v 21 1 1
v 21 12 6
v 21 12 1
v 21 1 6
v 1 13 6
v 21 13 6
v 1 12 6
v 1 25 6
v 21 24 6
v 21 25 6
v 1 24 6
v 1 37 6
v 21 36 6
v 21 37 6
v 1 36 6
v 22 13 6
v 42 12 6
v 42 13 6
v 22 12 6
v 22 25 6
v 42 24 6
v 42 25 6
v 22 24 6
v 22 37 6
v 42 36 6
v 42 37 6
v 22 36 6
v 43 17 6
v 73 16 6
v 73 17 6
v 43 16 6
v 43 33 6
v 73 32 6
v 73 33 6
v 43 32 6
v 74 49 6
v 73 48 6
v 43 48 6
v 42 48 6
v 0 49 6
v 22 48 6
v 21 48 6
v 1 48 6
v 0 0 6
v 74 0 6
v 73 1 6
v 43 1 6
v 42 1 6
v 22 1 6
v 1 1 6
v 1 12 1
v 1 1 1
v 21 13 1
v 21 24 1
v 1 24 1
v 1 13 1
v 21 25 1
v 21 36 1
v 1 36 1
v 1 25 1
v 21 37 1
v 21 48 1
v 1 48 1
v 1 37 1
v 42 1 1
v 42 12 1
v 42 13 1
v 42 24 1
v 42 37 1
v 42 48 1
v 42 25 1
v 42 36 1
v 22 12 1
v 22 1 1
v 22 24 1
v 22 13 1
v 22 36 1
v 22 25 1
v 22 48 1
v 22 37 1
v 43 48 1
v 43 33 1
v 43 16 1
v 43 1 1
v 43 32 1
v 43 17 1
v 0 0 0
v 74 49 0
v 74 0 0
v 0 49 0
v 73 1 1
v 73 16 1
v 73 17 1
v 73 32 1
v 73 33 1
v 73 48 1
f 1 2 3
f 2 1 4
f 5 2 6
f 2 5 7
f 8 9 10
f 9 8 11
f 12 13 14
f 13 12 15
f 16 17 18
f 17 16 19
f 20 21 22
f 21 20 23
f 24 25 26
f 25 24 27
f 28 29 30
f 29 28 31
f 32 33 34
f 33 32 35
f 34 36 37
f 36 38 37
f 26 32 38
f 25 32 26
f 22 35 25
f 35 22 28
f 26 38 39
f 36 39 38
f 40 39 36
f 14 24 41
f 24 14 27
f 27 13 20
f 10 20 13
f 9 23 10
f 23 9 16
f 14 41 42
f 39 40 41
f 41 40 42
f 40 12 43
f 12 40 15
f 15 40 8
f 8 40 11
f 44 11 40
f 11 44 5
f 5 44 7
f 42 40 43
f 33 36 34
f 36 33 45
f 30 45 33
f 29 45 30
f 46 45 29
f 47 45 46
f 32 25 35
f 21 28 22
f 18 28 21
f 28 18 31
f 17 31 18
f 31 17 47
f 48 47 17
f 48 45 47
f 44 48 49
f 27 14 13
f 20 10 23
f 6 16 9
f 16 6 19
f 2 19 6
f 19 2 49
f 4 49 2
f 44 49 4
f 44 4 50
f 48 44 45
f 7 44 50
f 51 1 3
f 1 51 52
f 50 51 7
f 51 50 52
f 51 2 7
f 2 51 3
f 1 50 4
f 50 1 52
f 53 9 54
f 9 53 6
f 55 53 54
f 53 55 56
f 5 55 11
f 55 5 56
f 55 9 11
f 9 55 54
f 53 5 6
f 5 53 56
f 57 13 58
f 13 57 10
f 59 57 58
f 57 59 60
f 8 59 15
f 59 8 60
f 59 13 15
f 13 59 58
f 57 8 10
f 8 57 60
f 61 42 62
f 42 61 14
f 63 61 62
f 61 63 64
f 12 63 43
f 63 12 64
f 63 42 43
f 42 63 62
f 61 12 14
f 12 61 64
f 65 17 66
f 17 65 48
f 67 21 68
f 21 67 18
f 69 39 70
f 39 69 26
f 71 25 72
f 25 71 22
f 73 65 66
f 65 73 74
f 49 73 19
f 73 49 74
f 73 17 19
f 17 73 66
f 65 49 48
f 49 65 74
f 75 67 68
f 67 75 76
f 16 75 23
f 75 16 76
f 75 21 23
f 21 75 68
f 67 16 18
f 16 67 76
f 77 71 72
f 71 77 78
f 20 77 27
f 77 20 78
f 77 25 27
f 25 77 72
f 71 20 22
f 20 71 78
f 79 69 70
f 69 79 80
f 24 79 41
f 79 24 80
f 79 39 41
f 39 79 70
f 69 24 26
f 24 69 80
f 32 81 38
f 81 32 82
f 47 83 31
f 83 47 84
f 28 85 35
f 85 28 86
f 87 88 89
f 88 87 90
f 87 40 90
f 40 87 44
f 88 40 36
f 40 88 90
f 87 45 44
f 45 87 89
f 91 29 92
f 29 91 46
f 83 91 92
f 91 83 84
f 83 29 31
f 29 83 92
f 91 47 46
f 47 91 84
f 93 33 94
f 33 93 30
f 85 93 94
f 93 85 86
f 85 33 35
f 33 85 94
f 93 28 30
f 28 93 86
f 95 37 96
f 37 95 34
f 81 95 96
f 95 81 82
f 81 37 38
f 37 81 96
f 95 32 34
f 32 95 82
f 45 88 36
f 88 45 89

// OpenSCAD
// box2d -- box with m x n cutouts of size [bx,by,bz] and thickness ww
module box2d(m, n, bx, by,bz, ww) {
    difference() {
        cube([(m*bx) + (m+1)*ww, by*n + (ww*(n+1)), bz+ww]);
        translate([ww, ww, ww]) {
            for (i = [0 : m-1]) {
                translate([i*(bx+ww), 0, 0]) {
                    for (j = [0 : n-1]) {
                        translate([0, j*(by+ww), 0]) {
                            cube([bx, by, bz]);
                        }
                    }
                }
            }
        }
    }
}

//box2d(3,4, 20, 10,5, 1);
//box2d(3,4, 50, 30 , 25, 1);

//box2d(2,4,20,10,5,1);
//translate([2*20+(4-2)*1,0,0]) box2d(1,2,30,21,5,1);

WW=1;
ZZ=5;
M1=2; N1=4; X1=20; Y1=11;
M2=1; N2=3; X2=30; Y2=15;

box2d(M1,N1,20,11,ZZ,WW);
translate([M1*X1+M1*WW,0,0]) box2d(M2,N2,X2,Y2,ZZ,WW);
